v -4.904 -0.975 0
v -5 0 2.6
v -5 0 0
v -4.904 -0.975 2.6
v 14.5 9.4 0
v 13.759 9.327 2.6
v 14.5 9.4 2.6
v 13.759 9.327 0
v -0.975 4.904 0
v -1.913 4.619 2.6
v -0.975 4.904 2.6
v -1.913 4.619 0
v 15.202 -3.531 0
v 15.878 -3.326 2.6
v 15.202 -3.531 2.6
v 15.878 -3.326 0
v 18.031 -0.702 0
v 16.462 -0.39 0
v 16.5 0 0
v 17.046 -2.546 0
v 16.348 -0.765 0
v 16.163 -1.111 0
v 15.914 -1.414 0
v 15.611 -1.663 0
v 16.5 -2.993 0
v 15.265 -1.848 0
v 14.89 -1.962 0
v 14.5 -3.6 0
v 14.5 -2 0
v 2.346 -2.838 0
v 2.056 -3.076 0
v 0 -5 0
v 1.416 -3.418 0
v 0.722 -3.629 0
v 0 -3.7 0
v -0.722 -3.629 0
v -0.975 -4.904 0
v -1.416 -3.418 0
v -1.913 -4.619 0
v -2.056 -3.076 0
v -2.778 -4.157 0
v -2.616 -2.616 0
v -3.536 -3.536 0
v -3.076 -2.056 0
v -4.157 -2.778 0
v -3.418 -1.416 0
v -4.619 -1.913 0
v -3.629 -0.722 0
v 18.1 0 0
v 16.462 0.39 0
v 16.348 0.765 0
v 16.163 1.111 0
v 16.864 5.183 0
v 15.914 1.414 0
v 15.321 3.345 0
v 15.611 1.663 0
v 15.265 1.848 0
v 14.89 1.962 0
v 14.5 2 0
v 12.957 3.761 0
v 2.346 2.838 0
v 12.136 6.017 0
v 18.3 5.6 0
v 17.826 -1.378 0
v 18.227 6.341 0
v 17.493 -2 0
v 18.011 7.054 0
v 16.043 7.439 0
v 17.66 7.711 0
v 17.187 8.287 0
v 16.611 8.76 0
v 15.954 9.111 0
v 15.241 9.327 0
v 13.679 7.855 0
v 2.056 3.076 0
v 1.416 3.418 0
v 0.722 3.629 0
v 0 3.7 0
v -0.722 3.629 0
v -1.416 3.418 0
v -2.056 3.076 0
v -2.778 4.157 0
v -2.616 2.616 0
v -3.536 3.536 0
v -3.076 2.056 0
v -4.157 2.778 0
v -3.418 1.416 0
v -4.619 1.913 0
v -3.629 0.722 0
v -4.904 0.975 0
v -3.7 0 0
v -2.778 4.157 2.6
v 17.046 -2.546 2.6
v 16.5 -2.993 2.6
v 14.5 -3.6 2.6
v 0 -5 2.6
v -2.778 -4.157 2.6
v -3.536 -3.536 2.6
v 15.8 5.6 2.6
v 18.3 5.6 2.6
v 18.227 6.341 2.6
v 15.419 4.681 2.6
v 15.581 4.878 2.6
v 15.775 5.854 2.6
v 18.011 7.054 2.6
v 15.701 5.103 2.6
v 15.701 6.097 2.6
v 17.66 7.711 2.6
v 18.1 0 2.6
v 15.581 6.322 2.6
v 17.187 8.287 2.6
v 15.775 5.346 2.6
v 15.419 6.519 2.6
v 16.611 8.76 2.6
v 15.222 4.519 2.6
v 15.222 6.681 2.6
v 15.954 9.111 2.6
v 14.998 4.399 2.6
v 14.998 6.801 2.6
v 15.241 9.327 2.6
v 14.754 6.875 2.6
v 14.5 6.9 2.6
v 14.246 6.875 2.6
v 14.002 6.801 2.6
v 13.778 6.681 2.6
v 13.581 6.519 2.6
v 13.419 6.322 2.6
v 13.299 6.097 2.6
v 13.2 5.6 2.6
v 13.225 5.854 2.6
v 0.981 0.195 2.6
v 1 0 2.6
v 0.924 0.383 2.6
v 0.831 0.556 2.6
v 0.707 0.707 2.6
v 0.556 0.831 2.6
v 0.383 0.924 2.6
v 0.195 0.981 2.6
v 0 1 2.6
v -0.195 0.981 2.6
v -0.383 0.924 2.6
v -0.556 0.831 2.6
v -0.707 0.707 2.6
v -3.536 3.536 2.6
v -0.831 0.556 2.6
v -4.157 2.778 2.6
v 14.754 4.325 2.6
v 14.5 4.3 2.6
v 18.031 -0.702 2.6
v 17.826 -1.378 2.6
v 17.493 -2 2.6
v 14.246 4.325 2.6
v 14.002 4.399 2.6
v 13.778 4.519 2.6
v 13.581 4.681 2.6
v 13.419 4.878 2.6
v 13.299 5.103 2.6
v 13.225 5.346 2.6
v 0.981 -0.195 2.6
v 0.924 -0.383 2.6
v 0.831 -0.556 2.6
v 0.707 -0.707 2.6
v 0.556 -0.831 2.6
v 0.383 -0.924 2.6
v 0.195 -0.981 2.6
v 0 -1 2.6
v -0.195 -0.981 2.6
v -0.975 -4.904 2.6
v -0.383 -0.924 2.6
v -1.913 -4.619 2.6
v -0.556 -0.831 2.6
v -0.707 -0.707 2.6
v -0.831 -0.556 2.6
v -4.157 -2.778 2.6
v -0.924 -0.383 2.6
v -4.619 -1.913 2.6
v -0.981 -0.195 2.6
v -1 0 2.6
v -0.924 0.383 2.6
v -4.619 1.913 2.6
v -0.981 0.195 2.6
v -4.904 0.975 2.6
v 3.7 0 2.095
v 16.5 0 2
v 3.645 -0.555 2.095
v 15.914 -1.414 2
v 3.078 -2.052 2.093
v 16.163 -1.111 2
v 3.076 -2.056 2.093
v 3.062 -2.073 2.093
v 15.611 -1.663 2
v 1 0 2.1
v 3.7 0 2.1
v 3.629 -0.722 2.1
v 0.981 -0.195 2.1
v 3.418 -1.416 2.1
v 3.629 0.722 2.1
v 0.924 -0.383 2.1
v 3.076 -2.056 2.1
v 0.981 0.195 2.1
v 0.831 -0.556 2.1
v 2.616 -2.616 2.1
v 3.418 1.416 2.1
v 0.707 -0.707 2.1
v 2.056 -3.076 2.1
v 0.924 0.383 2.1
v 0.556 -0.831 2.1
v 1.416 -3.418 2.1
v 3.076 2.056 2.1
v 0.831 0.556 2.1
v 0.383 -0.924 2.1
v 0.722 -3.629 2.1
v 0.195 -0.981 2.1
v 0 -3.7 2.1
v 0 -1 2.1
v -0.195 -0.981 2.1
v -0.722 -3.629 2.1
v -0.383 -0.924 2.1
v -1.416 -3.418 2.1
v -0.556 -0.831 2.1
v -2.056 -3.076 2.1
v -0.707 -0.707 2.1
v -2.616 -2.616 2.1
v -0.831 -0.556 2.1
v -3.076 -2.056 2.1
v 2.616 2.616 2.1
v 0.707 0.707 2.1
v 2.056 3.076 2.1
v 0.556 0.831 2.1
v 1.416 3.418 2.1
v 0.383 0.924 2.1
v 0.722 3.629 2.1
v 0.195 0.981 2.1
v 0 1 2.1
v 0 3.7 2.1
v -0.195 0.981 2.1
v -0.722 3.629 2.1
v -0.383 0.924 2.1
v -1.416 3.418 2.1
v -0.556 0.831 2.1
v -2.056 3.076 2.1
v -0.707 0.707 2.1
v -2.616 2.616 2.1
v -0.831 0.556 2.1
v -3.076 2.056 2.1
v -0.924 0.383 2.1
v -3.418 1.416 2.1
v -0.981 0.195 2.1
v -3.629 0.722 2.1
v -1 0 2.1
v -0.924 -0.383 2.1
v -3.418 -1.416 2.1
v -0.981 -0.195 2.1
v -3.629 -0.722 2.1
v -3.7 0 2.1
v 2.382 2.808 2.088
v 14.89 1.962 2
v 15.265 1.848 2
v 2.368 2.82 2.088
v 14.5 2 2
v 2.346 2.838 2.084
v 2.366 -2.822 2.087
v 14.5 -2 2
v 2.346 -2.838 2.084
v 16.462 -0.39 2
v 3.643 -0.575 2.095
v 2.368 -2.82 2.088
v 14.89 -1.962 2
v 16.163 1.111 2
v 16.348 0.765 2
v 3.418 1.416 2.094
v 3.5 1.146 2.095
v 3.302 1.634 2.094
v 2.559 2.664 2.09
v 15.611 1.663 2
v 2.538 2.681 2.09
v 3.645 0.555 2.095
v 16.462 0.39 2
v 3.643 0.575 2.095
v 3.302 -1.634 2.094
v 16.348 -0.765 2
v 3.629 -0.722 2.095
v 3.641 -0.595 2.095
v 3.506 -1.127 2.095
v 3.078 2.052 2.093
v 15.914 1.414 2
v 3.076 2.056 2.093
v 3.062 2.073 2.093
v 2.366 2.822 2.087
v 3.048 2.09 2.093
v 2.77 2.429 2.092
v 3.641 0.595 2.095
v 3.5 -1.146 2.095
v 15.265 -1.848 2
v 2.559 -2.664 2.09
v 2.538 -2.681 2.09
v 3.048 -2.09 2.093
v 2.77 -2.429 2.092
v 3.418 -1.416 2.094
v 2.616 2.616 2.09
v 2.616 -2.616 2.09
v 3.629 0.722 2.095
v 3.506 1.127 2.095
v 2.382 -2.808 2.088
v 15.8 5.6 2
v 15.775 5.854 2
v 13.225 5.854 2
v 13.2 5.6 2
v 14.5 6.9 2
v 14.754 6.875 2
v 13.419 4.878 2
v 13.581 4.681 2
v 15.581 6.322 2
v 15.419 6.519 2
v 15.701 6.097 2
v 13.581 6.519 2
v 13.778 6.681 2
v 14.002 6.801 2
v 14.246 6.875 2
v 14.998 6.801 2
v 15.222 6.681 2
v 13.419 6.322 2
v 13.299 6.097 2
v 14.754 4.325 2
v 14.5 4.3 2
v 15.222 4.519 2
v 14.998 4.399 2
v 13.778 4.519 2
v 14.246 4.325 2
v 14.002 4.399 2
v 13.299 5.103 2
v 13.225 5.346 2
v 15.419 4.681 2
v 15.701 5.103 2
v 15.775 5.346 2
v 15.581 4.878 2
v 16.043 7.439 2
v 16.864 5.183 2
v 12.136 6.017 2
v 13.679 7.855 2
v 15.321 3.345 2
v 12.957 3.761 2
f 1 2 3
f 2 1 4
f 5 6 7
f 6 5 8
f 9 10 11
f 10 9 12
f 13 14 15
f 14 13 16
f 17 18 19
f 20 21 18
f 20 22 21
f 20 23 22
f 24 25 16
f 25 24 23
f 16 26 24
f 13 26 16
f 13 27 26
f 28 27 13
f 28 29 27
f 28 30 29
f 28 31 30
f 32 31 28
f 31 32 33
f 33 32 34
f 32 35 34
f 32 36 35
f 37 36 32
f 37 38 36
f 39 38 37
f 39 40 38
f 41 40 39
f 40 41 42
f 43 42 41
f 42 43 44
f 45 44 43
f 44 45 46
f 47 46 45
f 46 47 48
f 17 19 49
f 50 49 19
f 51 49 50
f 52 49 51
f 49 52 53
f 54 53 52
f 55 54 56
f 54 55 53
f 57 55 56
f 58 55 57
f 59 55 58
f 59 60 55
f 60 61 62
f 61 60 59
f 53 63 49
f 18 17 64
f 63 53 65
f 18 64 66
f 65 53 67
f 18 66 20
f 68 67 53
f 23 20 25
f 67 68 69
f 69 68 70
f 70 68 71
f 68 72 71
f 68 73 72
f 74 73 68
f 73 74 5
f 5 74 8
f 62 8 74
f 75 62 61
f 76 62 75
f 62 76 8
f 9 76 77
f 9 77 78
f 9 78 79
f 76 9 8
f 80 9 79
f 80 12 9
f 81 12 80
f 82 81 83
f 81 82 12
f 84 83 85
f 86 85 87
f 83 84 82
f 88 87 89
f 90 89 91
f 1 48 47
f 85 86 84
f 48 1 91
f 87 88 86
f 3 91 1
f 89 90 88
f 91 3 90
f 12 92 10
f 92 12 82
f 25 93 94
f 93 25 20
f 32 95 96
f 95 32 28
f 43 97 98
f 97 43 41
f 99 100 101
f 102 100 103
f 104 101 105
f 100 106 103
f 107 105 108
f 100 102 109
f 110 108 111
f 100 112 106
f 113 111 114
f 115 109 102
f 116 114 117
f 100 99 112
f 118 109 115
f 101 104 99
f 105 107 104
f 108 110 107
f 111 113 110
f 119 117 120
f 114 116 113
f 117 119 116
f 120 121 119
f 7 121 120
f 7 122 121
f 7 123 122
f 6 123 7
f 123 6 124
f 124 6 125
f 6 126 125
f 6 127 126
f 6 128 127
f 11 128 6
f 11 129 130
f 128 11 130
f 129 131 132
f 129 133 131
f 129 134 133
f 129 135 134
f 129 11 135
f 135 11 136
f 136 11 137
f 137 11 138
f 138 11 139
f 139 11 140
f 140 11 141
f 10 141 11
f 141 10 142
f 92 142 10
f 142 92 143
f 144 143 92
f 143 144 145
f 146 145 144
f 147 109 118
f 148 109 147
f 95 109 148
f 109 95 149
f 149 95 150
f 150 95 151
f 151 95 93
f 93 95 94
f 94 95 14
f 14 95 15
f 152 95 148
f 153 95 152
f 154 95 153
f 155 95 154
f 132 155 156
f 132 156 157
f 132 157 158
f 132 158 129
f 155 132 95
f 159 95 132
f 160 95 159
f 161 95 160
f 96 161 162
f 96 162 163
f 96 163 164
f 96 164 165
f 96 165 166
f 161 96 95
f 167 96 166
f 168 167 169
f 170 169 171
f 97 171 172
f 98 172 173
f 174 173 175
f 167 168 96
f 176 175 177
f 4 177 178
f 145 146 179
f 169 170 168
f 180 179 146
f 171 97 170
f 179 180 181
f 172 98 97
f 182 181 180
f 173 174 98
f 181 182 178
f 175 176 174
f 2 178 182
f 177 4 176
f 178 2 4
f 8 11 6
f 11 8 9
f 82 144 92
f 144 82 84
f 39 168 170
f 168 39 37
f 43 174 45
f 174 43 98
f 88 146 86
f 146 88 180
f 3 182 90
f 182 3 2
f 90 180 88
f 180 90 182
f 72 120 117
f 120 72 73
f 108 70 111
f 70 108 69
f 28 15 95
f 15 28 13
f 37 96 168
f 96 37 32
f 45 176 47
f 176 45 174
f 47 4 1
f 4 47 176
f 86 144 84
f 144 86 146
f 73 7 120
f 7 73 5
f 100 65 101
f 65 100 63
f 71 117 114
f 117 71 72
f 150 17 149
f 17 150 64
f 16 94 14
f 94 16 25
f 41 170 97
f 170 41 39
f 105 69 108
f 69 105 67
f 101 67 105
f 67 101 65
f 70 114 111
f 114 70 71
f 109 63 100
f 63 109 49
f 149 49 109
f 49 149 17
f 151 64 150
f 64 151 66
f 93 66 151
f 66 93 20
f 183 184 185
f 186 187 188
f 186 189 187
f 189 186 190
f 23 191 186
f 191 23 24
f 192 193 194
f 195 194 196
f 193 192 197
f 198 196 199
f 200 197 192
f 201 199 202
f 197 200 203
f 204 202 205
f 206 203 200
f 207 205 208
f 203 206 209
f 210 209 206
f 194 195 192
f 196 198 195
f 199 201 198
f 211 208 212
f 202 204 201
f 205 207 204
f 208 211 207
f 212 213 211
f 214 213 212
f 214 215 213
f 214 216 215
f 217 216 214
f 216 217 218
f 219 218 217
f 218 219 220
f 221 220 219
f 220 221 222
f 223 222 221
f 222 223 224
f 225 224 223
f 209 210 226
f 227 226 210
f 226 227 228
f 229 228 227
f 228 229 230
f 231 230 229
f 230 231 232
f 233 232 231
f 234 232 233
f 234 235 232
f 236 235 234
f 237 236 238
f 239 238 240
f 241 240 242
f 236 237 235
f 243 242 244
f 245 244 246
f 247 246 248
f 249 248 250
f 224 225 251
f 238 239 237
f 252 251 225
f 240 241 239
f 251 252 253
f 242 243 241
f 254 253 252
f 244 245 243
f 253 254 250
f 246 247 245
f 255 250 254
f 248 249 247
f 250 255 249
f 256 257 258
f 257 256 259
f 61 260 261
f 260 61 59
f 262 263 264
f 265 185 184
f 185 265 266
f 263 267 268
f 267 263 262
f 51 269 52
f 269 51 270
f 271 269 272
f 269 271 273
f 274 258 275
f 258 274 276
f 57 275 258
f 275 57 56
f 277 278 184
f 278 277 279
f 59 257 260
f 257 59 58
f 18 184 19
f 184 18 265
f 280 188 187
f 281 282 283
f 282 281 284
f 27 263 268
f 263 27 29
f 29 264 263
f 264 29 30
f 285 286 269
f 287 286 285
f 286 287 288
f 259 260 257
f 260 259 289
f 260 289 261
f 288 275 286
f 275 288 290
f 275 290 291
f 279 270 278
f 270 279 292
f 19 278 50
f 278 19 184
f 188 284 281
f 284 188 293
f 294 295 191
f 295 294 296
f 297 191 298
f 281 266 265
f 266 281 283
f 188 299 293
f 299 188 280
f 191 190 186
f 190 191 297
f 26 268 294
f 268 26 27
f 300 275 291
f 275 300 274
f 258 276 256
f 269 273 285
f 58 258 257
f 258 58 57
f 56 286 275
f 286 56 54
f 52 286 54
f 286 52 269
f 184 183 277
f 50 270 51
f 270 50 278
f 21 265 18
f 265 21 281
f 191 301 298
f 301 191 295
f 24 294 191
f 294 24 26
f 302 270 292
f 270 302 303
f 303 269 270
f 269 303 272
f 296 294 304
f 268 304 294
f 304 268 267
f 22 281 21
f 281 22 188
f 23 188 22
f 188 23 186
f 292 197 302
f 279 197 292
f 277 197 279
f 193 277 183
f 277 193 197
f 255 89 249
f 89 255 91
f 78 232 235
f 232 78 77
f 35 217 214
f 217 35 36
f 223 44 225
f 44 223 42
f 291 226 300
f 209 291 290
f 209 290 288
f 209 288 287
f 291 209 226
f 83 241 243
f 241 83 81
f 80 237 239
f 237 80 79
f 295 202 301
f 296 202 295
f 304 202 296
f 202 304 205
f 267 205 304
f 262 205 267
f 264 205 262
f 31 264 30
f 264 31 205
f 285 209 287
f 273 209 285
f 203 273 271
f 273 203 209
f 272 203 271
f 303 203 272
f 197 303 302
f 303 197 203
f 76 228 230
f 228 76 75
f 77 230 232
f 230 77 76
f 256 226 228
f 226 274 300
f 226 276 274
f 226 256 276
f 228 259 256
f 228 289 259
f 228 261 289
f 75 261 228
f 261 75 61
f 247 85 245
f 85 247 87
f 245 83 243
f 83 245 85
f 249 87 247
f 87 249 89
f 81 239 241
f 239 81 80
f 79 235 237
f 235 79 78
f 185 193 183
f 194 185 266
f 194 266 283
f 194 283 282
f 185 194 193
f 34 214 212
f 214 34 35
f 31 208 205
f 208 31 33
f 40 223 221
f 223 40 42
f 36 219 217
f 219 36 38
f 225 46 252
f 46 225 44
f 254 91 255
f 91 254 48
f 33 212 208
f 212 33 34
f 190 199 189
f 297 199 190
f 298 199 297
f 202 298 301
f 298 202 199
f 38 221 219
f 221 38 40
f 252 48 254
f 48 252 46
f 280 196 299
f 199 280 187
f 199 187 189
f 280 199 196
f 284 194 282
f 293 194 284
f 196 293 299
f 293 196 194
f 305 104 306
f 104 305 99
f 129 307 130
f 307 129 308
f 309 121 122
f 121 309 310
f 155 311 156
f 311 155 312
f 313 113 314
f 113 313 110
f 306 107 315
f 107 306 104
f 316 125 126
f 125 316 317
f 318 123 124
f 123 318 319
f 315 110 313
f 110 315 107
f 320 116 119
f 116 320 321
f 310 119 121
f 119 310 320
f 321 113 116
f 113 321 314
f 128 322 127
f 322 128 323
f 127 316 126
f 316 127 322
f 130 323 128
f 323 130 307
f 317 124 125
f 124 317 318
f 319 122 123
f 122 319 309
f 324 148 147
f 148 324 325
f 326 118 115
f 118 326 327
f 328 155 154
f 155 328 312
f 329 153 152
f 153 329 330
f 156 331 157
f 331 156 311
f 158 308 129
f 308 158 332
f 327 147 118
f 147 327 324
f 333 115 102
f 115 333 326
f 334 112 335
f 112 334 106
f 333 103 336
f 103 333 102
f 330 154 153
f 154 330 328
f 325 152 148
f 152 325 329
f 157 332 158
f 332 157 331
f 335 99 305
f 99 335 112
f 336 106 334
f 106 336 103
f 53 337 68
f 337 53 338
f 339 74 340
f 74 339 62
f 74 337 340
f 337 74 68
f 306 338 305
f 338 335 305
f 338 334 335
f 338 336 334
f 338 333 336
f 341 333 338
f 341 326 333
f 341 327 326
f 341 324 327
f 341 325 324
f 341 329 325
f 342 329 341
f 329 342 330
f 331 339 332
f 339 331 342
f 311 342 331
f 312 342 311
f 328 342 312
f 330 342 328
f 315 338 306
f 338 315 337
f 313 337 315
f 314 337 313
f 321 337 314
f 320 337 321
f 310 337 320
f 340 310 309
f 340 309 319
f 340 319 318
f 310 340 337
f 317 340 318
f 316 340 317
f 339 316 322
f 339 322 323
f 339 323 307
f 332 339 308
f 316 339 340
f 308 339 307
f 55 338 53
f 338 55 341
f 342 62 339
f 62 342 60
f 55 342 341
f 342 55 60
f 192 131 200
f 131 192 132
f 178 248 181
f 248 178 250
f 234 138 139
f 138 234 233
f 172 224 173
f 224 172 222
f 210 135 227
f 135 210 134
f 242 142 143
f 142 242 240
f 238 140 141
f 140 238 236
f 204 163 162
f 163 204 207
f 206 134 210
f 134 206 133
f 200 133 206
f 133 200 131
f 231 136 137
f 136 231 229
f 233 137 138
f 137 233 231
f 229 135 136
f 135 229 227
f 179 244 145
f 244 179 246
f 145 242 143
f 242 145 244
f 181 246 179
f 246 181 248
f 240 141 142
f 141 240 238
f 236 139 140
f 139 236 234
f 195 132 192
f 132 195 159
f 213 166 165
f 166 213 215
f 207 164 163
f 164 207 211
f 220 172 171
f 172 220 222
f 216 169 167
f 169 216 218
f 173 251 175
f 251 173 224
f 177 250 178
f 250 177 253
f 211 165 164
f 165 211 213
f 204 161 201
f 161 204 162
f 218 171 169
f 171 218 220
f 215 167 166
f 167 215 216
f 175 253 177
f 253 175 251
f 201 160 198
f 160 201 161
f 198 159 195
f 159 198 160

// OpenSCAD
h = 2.6;
difference() {
    d = 14.5;
    d2 = 5.6;
    hull() {
        cylinder($fn=32, h=h, d=10);
        translate([d,0,0]) cylinder($fn=32, h=h, d=7.2);
        translate([d,d2,0]) cylinder($fn=32, h=h, d=7.6);
    }
    
    hull() {
        cylinder($fn=32, h=h-0.5, d=6);
        translate([14.5,0,0]) cylinder($fn=32, h=h-0.6, d=4);
    }
    cylinder($fn=32, h=h-0.5, d=7.4);
    translate([d,d2,0]) cylinder($fn=32, h=h, d=2.6);
    translate([d,d2,0]) rotate([0,0,-10]) cylinder($fn=6, h=2, d=4.8);
    cylinder($fn=32, h=h, d=2);
}
